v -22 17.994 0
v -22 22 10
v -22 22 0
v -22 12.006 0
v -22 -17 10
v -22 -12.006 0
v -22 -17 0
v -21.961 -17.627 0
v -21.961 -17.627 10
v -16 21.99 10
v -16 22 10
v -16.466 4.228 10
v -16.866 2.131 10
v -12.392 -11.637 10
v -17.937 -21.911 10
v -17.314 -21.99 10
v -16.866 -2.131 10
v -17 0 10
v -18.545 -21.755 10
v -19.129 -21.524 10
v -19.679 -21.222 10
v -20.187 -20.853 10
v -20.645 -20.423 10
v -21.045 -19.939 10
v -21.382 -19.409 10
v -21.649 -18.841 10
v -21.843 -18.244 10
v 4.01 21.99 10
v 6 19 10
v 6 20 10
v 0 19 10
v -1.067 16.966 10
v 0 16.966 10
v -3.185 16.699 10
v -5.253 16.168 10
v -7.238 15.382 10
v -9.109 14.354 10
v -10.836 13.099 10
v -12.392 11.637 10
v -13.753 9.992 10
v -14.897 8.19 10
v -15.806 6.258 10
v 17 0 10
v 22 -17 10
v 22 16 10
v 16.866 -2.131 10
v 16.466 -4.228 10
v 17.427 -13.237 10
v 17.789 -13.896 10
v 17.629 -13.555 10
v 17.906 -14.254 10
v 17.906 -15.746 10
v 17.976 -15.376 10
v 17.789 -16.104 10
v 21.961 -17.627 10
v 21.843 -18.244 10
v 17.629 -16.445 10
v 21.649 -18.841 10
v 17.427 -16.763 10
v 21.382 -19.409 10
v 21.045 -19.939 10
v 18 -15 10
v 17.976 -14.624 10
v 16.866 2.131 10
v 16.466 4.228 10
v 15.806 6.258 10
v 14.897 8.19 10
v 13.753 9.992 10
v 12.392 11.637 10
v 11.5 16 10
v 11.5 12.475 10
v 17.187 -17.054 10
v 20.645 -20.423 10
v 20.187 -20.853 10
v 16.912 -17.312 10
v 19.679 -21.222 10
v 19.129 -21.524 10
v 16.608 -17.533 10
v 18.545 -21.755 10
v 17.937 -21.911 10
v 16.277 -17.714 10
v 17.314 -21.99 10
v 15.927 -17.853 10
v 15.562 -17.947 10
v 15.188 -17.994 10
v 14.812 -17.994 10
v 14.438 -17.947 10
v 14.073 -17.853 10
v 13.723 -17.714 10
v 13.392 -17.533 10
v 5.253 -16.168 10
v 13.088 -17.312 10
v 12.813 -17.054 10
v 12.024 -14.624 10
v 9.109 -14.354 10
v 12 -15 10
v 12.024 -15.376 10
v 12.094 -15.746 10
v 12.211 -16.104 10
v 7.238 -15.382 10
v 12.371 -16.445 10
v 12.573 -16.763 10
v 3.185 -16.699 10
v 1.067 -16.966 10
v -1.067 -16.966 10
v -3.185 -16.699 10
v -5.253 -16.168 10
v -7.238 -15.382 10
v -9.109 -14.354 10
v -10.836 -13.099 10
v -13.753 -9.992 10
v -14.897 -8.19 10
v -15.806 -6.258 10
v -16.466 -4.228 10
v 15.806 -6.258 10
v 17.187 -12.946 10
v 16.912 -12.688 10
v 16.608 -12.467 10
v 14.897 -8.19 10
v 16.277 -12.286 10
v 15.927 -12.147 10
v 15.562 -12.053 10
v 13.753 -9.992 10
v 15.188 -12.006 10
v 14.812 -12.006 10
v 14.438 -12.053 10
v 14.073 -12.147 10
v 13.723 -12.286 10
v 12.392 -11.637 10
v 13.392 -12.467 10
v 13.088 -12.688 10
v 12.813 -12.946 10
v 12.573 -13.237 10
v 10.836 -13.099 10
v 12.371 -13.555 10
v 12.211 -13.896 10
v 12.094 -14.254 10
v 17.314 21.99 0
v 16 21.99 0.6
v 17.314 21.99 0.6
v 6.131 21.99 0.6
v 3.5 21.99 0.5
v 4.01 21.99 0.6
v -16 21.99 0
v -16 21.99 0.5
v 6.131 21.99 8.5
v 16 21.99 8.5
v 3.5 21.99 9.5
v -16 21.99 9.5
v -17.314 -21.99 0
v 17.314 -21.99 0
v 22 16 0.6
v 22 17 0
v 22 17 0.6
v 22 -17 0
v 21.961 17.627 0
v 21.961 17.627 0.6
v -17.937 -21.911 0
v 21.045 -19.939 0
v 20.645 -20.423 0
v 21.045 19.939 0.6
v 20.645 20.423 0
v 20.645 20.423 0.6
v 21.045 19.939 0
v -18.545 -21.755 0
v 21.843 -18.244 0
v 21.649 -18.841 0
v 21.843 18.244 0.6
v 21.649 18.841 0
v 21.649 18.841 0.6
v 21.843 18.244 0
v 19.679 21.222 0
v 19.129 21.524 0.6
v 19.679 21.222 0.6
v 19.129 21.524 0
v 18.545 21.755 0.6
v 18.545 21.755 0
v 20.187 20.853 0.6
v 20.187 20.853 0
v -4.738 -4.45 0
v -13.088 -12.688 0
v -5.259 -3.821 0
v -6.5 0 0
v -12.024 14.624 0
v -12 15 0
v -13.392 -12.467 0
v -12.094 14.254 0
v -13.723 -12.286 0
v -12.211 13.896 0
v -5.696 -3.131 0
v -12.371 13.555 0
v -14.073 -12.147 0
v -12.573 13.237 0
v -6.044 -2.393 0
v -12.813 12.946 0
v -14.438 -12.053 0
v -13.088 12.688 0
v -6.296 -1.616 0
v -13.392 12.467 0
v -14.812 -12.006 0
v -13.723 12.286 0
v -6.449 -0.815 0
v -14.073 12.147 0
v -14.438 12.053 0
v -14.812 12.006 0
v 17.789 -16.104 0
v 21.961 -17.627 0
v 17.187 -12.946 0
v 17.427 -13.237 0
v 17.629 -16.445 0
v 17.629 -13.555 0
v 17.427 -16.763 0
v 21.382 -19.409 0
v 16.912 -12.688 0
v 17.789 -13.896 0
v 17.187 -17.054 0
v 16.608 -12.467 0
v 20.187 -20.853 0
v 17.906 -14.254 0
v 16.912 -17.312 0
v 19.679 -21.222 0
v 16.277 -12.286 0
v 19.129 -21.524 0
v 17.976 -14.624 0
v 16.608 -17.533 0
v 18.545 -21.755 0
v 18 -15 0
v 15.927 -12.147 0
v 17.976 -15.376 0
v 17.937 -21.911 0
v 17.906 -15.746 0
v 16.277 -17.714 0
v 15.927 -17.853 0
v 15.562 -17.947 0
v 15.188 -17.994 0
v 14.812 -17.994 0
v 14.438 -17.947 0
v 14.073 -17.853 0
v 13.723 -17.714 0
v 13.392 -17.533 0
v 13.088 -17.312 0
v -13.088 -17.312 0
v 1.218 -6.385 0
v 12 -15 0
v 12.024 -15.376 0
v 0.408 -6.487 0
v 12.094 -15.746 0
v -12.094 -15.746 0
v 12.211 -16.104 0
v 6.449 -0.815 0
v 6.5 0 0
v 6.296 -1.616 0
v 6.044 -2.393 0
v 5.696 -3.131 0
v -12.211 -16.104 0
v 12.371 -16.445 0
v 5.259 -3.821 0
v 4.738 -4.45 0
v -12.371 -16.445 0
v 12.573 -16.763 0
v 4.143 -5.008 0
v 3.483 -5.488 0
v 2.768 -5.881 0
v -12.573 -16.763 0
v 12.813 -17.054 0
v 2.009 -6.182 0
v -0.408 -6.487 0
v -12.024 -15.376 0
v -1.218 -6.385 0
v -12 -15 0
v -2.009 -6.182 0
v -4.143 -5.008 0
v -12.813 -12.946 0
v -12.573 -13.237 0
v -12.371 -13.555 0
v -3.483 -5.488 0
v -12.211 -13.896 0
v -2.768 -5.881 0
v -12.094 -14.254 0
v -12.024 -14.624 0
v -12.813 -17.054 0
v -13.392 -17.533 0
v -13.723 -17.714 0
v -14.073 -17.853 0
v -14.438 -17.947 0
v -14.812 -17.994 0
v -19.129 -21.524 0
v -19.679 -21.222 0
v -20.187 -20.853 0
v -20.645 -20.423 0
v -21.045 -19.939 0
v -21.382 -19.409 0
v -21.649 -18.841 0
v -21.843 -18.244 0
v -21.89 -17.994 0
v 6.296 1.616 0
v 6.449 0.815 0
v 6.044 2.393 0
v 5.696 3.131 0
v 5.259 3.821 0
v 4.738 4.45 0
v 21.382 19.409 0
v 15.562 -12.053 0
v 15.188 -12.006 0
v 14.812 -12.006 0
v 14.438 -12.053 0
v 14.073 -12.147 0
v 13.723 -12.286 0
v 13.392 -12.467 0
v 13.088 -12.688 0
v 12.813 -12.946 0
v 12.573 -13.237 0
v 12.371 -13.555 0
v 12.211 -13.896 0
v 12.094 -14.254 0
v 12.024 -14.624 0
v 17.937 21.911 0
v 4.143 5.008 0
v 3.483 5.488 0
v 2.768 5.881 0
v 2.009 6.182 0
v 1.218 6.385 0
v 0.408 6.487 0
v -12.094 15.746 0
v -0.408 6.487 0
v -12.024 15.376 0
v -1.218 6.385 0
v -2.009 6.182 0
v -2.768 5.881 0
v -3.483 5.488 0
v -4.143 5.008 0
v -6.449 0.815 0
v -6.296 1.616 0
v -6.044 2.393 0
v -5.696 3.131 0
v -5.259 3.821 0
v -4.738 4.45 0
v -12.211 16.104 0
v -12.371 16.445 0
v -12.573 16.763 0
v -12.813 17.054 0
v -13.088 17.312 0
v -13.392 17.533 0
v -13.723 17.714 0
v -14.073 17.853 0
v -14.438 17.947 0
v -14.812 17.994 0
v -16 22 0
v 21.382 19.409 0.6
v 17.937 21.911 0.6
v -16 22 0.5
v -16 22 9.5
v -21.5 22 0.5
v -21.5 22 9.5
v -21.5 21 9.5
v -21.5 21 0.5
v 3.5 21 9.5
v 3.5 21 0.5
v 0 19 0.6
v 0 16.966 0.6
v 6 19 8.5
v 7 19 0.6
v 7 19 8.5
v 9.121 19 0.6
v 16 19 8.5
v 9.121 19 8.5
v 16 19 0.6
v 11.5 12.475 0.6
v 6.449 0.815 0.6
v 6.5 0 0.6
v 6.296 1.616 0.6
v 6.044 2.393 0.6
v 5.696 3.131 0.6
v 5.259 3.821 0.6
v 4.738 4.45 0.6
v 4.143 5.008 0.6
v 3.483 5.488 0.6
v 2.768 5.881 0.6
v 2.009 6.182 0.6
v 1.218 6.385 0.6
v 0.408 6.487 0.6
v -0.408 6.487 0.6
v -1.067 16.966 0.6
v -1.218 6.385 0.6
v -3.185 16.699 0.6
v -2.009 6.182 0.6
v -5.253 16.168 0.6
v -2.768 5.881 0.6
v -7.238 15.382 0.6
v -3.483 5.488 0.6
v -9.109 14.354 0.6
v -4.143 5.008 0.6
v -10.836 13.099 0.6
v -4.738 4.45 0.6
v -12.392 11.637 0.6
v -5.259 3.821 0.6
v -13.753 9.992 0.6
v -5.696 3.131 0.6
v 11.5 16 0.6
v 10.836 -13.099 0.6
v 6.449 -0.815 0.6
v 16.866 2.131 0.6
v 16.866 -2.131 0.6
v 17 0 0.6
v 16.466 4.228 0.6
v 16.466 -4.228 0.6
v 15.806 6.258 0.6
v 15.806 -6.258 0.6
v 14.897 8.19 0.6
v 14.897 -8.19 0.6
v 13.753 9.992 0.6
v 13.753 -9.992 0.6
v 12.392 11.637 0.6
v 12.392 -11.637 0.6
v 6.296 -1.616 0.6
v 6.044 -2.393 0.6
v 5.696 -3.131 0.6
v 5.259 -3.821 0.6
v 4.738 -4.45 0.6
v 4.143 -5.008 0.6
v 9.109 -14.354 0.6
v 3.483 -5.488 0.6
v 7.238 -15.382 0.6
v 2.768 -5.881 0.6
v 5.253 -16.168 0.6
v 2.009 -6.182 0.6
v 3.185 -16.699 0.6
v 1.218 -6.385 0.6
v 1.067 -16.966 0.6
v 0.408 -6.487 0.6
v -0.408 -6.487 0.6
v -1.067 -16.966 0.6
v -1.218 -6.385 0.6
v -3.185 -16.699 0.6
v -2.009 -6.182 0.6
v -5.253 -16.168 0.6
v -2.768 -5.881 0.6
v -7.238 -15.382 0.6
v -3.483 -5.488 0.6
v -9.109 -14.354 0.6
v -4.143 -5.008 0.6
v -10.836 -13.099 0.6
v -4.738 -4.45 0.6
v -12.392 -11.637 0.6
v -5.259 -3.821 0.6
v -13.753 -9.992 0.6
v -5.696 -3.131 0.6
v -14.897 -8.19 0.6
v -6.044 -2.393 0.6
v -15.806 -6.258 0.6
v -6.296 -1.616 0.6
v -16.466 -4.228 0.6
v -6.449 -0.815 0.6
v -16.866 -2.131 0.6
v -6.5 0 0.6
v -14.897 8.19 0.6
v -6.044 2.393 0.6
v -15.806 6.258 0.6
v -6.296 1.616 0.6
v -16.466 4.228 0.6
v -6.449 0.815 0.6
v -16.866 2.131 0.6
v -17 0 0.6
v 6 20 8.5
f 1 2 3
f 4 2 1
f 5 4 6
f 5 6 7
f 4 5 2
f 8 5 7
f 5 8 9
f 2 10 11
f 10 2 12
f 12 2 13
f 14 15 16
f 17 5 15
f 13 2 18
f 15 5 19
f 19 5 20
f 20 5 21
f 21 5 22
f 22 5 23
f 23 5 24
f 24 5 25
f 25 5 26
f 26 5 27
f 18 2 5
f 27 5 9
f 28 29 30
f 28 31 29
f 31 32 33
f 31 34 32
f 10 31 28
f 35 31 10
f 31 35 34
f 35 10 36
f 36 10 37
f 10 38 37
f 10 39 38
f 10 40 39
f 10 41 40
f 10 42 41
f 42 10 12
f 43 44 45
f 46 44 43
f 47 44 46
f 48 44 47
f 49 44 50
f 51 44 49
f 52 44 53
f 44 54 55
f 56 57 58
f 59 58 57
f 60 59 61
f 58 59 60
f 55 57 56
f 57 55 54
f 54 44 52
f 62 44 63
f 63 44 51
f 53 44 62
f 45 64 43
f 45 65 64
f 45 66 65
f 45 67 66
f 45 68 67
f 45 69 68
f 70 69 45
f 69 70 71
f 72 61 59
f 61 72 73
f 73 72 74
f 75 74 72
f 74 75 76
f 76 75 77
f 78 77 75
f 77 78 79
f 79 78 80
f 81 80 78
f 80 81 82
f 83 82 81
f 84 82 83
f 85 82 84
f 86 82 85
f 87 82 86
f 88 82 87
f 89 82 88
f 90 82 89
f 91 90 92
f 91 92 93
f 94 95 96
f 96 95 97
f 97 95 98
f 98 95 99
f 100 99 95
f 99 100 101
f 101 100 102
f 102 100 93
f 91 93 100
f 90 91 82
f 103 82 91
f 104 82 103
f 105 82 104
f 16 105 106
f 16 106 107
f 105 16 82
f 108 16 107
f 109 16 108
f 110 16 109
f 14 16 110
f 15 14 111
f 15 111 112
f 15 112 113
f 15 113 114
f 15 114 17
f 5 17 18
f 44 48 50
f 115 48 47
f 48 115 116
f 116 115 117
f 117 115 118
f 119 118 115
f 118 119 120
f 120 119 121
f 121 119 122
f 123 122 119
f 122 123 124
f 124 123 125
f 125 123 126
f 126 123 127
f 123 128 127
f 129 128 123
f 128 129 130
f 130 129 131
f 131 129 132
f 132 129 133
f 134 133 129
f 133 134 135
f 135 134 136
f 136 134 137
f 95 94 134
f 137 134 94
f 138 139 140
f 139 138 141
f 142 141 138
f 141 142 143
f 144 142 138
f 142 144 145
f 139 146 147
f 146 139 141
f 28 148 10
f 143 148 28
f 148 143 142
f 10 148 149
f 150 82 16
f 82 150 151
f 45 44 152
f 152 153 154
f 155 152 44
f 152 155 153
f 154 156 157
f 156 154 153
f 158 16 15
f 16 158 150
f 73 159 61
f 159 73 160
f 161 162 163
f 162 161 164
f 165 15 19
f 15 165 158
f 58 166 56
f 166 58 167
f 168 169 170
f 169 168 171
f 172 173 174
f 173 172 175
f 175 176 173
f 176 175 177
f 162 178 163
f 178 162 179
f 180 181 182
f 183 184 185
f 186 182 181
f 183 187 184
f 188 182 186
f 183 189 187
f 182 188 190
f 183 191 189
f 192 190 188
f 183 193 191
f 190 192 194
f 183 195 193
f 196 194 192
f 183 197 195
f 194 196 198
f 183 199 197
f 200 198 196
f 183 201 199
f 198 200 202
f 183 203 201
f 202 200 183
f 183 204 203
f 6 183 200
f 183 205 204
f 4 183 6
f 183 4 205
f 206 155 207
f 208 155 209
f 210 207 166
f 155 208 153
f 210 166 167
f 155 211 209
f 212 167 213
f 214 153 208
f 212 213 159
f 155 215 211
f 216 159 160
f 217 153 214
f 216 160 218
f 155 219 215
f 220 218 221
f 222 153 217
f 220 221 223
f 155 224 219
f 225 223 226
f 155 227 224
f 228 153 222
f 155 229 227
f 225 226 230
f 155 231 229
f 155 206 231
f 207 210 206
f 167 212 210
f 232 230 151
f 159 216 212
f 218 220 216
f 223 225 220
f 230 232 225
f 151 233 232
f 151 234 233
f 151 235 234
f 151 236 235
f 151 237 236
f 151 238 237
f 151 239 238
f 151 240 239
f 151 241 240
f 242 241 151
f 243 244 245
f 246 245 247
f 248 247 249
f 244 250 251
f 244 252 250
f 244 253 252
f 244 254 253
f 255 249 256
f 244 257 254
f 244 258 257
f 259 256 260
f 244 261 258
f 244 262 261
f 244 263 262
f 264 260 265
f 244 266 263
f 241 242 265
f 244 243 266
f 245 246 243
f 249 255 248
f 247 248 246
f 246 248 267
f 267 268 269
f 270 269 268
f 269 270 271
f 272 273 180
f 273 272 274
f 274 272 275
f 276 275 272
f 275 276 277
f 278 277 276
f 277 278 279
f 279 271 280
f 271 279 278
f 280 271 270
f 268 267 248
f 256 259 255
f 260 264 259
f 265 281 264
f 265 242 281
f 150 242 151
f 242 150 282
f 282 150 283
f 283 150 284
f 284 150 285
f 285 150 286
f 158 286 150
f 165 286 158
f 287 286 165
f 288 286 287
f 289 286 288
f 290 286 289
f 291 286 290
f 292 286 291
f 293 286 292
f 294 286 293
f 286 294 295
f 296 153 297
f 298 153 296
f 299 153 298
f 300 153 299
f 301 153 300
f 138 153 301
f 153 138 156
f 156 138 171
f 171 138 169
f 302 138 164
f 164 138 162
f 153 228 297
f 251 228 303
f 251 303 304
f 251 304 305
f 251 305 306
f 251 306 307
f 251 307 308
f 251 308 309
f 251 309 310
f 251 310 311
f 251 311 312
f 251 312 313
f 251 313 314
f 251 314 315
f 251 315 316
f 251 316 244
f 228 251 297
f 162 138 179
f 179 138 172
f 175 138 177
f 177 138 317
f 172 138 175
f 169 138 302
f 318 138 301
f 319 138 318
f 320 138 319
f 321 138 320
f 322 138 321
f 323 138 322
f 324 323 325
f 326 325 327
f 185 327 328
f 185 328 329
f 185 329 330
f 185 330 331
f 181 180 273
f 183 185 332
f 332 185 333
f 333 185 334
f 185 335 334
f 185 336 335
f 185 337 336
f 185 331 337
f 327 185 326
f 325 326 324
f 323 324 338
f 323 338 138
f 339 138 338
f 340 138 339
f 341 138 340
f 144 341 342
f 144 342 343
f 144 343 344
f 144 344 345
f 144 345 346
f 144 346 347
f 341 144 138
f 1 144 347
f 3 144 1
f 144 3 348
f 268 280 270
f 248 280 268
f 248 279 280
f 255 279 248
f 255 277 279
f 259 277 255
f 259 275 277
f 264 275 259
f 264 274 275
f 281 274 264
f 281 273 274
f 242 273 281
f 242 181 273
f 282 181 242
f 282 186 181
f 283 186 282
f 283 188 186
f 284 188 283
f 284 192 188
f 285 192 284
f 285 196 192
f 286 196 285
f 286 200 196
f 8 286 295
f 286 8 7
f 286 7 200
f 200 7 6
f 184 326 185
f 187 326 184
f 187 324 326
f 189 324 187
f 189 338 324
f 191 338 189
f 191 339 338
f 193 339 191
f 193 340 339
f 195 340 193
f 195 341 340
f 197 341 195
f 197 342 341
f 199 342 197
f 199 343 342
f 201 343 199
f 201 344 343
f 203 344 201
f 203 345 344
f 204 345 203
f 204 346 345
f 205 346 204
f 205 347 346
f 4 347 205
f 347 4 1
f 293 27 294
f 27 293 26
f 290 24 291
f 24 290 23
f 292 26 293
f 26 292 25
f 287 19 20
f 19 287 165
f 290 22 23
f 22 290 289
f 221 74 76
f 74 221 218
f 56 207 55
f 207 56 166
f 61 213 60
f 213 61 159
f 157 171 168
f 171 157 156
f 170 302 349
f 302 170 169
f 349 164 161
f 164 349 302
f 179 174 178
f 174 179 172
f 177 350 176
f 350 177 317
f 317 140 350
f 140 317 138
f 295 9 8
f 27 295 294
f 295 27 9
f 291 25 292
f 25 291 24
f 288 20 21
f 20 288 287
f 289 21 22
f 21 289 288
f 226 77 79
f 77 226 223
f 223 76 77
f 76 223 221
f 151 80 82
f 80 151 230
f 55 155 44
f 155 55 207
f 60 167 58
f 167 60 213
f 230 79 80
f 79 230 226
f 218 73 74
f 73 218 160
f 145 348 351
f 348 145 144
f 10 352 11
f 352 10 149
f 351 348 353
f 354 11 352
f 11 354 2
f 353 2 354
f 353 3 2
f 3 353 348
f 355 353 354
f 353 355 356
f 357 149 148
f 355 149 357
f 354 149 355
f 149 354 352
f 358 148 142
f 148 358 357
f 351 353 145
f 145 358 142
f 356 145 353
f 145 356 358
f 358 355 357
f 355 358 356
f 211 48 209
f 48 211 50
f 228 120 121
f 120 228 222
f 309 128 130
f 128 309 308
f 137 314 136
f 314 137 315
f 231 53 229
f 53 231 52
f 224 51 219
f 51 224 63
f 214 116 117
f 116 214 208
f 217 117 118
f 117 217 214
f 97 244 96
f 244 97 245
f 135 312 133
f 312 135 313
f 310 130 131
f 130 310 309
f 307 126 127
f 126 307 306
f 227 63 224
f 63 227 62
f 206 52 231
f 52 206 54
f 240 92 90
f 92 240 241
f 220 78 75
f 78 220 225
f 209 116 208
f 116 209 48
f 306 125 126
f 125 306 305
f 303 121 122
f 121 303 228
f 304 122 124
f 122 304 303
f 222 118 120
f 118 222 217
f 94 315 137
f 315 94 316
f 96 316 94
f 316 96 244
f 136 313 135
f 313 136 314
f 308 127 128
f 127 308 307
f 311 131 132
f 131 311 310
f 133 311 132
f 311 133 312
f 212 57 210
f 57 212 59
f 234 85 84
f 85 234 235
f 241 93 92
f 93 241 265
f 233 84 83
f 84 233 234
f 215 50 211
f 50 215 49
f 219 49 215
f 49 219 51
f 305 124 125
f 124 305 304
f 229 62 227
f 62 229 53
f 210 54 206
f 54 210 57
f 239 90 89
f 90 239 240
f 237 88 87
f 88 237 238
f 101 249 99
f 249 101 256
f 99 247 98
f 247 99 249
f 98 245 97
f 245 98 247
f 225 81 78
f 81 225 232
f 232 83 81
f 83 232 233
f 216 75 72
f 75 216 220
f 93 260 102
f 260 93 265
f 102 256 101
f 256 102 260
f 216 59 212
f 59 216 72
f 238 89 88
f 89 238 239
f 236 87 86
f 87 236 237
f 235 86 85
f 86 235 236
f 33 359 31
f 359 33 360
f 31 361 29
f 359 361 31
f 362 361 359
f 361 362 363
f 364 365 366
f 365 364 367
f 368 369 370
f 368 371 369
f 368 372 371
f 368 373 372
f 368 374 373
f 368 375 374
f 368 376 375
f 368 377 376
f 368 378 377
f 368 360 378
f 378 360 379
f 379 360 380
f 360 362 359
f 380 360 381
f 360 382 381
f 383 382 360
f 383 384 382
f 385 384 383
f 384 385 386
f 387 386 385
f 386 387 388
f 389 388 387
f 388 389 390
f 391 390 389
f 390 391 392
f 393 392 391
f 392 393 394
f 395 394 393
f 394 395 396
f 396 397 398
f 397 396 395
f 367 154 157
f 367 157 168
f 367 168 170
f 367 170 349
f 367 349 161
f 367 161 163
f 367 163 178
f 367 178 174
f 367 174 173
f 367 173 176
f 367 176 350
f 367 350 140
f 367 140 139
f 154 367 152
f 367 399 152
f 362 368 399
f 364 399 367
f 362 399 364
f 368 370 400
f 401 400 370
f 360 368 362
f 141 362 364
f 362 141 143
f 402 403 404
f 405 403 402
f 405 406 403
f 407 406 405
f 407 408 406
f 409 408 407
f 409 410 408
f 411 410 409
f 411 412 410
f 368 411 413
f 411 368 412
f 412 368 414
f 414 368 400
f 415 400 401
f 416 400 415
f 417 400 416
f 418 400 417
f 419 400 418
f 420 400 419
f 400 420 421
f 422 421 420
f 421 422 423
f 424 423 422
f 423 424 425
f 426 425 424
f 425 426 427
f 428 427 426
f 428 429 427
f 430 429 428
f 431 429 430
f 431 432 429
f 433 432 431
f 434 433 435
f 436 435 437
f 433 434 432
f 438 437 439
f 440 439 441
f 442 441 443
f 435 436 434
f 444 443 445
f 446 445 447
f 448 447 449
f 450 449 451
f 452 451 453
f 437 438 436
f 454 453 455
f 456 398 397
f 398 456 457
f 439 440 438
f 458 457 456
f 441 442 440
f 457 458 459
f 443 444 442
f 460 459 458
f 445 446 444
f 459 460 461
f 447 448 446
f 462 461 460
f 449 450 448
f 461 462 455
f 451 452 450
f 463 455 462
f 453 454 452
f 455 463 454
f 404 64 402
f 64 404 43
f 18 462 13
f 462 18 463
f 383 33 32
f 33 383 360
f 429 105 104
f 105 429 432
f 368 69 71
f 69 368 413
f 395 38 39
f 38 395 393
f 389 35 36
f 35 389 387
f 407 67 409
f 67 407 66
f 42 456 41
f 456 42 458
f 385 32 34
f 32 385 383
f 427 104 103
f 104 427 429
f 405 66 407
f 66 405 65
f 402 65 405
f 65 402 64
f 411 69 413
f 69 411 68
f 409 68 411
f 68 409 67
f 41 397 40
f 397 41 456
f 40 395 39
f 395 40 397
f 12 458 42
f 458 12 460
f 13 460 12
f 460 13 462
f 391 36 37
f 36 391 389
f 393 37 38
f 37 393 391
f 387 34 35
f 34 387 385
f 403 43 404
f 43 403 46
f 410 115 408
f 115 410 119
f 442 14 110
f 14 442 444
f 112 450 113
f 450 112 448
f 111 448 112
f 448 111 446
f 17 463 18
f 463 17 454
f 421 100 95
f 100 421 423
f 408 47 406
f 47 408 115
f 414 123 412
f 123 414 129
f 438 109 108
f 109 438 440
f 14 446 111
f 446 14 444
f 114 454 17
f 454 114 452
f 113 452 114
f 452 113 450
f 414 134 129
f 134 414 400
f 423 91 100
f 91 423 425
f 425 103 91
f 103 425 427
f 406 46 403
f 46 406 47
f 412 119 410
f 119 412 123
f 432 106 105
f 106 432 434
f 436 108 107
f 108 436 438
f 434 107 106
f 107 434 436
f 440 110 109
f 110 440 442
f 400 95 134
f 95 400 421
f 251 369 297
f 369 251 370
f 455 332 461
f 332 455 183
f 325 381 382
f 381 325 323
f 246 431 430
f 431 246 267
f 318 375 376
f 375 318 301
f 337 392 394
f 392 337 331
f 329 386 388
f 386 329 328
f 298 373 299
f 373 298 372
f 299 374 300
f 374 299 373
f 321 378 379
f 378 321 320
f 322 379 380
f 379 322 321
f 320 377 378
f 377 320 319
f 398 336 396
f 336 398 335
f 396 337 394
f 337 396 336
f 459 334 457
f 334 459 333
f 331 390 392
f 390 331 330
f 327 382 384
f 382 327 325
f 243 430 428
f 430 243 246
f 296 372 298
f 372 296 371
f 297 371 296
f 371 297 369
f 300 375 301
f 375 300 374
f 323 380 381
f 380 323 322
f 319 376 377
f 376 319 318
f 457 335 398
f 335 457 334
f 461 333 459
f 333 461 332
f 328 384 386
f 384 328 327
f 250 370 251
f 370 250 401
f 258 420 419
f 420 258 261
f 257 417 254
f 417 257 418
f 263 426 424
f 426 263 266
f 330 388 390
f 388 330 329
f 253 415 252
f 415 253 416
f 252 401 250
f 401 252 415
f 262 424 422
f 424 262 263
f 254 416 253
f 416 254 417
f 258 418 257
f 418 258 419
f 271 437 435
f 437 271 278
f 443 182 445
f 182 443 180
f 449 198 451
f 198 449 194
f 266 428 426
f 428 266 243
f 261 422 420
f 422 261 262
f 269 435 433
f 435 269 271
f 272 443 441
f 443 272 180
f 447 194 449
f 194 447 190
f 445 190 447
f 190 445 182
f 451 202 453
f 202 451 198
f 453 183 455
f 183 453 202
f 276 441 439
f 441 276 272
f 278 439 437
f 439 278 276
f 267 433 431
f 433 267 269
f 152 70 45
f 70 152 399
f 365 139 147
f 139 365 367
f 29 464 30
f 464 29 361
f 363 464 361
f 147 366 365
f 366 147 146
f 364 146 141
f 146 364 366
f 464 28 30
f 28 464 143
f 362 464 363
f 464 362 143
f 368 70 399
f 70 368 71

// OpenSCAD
$fn = 50;


difference() {
	union() {
		hull() {
			translate(v = [-17.0000000000, 17.0000000000, 0]) {
				cylinder(h = 10, r = 5);
			}
			translate(v = [17.0000000000, 17.0000000000, 0]) {
				cylinder(h = 10, r = 5);
			}
			translate(v = [-17.0000000000, -17.0000000000, 0]) {
				cylinder(h = 10, r = 5);
			}
			translate(v = [17.0000000000, -17.0000000000, 0]) {
				cylinder(h = 10, r = 5);
			}
		}
		translate(v = [-22.0000000000, 16.0000000000, 0]) {
			cube(size = [6, 6, 10]);
		}
	}
	union() {
		translate(v = [-22.5000000000, -15.0000000000, -250.0000000000]) {
			rotate(a = [0, 0, 0]) {
				difference() {
					union() {
						hull() {
							translate(v = [7.5000000000, 0, 0]) {
								cylinder(h = 250, r = 3.0000000000, r1 = 3.0000000000, r2 = 3.0000000000);
							}
							translate(v = [-7.5000000000, 0, 0]) {
								cylinder(h = 250, r = 3.0000000000, r1 = 3.0000000000, r2 = 3.0000000000);
							}
						}
					}
					union();
				}
			}
		}
		translate(v = [-22.5000000000, 15.0000000000, -250.0000000000]) {
			rotate(a = [0, 0, 0]) {
				difference() {
					union() {
						hull() {
							translate(v = [7.5000000000, 0, 0]) {
								cylinder(h = 250, r = 3.0000000000, r1 = 3.0000000000, r2 = 3.0000000000);
							}
							translate(v = [-7.5000000000, 0, 0]) {
								cylinder(h = 250, r = 3.0000000000, r1 = 3.0000000000, r2 = 3.0000000000);
							}
						}
					}
					union();
				}
			}
		}
		translate(v = [-21.5000000000, 21.0000000000, 0.5000000000]) {
			cube(size = [25, 1, 9.0000000000]);
		}
		translate(v = [15.0000000000, -15.0000000000, -50.0000000000]) {
			cylinder(h = 100, r = 3.0000000000);
		}
		translate(v = [0.0000000000, 11.0000000000, 0.6000000000]) {
			cube(size = [11, 8, 12.4000000000]);
		}
		translate(v = [0, 0, 0.6000000000]) {
			cylinder(h = 12.4000000000, r = 17.0000000000);
		}
		translate(v = [0, 0, -5.0000000000]) {
			cylinder(h = 10, r = 6.5000000000);
		}
		translate(v = [0.0000000000, 16.0000000000, 0.6000000000]) {
			cube(size = [22.0000000000, 3, 12.4000000000]);
		}
		translate(v = [16.0000000000, 16.0000000000, 0.6000000000]) {
			cube(size = [6, 6, 12.4000000000]);
		}
		translate(v = [6.0000000000, 16.0000000000, 8.5000000000]) {
			cube(size = [16, 6, 1.5000000000]);
		}
		translate(v = [3.2500000000, 22.7500000000, 0.6000000000]) {
			rotate(a = [0, 0, -45]) {
				cube(size = [7.5000000000, 1.5000000000, 12.4000000000]);
			}
		}
		translate(v = [2.5000000000, 11.0000000000, 0.6000000000]) {
			cube(size = [9.0000000000, 5, 9.4000000000]);
		}
	}
}
